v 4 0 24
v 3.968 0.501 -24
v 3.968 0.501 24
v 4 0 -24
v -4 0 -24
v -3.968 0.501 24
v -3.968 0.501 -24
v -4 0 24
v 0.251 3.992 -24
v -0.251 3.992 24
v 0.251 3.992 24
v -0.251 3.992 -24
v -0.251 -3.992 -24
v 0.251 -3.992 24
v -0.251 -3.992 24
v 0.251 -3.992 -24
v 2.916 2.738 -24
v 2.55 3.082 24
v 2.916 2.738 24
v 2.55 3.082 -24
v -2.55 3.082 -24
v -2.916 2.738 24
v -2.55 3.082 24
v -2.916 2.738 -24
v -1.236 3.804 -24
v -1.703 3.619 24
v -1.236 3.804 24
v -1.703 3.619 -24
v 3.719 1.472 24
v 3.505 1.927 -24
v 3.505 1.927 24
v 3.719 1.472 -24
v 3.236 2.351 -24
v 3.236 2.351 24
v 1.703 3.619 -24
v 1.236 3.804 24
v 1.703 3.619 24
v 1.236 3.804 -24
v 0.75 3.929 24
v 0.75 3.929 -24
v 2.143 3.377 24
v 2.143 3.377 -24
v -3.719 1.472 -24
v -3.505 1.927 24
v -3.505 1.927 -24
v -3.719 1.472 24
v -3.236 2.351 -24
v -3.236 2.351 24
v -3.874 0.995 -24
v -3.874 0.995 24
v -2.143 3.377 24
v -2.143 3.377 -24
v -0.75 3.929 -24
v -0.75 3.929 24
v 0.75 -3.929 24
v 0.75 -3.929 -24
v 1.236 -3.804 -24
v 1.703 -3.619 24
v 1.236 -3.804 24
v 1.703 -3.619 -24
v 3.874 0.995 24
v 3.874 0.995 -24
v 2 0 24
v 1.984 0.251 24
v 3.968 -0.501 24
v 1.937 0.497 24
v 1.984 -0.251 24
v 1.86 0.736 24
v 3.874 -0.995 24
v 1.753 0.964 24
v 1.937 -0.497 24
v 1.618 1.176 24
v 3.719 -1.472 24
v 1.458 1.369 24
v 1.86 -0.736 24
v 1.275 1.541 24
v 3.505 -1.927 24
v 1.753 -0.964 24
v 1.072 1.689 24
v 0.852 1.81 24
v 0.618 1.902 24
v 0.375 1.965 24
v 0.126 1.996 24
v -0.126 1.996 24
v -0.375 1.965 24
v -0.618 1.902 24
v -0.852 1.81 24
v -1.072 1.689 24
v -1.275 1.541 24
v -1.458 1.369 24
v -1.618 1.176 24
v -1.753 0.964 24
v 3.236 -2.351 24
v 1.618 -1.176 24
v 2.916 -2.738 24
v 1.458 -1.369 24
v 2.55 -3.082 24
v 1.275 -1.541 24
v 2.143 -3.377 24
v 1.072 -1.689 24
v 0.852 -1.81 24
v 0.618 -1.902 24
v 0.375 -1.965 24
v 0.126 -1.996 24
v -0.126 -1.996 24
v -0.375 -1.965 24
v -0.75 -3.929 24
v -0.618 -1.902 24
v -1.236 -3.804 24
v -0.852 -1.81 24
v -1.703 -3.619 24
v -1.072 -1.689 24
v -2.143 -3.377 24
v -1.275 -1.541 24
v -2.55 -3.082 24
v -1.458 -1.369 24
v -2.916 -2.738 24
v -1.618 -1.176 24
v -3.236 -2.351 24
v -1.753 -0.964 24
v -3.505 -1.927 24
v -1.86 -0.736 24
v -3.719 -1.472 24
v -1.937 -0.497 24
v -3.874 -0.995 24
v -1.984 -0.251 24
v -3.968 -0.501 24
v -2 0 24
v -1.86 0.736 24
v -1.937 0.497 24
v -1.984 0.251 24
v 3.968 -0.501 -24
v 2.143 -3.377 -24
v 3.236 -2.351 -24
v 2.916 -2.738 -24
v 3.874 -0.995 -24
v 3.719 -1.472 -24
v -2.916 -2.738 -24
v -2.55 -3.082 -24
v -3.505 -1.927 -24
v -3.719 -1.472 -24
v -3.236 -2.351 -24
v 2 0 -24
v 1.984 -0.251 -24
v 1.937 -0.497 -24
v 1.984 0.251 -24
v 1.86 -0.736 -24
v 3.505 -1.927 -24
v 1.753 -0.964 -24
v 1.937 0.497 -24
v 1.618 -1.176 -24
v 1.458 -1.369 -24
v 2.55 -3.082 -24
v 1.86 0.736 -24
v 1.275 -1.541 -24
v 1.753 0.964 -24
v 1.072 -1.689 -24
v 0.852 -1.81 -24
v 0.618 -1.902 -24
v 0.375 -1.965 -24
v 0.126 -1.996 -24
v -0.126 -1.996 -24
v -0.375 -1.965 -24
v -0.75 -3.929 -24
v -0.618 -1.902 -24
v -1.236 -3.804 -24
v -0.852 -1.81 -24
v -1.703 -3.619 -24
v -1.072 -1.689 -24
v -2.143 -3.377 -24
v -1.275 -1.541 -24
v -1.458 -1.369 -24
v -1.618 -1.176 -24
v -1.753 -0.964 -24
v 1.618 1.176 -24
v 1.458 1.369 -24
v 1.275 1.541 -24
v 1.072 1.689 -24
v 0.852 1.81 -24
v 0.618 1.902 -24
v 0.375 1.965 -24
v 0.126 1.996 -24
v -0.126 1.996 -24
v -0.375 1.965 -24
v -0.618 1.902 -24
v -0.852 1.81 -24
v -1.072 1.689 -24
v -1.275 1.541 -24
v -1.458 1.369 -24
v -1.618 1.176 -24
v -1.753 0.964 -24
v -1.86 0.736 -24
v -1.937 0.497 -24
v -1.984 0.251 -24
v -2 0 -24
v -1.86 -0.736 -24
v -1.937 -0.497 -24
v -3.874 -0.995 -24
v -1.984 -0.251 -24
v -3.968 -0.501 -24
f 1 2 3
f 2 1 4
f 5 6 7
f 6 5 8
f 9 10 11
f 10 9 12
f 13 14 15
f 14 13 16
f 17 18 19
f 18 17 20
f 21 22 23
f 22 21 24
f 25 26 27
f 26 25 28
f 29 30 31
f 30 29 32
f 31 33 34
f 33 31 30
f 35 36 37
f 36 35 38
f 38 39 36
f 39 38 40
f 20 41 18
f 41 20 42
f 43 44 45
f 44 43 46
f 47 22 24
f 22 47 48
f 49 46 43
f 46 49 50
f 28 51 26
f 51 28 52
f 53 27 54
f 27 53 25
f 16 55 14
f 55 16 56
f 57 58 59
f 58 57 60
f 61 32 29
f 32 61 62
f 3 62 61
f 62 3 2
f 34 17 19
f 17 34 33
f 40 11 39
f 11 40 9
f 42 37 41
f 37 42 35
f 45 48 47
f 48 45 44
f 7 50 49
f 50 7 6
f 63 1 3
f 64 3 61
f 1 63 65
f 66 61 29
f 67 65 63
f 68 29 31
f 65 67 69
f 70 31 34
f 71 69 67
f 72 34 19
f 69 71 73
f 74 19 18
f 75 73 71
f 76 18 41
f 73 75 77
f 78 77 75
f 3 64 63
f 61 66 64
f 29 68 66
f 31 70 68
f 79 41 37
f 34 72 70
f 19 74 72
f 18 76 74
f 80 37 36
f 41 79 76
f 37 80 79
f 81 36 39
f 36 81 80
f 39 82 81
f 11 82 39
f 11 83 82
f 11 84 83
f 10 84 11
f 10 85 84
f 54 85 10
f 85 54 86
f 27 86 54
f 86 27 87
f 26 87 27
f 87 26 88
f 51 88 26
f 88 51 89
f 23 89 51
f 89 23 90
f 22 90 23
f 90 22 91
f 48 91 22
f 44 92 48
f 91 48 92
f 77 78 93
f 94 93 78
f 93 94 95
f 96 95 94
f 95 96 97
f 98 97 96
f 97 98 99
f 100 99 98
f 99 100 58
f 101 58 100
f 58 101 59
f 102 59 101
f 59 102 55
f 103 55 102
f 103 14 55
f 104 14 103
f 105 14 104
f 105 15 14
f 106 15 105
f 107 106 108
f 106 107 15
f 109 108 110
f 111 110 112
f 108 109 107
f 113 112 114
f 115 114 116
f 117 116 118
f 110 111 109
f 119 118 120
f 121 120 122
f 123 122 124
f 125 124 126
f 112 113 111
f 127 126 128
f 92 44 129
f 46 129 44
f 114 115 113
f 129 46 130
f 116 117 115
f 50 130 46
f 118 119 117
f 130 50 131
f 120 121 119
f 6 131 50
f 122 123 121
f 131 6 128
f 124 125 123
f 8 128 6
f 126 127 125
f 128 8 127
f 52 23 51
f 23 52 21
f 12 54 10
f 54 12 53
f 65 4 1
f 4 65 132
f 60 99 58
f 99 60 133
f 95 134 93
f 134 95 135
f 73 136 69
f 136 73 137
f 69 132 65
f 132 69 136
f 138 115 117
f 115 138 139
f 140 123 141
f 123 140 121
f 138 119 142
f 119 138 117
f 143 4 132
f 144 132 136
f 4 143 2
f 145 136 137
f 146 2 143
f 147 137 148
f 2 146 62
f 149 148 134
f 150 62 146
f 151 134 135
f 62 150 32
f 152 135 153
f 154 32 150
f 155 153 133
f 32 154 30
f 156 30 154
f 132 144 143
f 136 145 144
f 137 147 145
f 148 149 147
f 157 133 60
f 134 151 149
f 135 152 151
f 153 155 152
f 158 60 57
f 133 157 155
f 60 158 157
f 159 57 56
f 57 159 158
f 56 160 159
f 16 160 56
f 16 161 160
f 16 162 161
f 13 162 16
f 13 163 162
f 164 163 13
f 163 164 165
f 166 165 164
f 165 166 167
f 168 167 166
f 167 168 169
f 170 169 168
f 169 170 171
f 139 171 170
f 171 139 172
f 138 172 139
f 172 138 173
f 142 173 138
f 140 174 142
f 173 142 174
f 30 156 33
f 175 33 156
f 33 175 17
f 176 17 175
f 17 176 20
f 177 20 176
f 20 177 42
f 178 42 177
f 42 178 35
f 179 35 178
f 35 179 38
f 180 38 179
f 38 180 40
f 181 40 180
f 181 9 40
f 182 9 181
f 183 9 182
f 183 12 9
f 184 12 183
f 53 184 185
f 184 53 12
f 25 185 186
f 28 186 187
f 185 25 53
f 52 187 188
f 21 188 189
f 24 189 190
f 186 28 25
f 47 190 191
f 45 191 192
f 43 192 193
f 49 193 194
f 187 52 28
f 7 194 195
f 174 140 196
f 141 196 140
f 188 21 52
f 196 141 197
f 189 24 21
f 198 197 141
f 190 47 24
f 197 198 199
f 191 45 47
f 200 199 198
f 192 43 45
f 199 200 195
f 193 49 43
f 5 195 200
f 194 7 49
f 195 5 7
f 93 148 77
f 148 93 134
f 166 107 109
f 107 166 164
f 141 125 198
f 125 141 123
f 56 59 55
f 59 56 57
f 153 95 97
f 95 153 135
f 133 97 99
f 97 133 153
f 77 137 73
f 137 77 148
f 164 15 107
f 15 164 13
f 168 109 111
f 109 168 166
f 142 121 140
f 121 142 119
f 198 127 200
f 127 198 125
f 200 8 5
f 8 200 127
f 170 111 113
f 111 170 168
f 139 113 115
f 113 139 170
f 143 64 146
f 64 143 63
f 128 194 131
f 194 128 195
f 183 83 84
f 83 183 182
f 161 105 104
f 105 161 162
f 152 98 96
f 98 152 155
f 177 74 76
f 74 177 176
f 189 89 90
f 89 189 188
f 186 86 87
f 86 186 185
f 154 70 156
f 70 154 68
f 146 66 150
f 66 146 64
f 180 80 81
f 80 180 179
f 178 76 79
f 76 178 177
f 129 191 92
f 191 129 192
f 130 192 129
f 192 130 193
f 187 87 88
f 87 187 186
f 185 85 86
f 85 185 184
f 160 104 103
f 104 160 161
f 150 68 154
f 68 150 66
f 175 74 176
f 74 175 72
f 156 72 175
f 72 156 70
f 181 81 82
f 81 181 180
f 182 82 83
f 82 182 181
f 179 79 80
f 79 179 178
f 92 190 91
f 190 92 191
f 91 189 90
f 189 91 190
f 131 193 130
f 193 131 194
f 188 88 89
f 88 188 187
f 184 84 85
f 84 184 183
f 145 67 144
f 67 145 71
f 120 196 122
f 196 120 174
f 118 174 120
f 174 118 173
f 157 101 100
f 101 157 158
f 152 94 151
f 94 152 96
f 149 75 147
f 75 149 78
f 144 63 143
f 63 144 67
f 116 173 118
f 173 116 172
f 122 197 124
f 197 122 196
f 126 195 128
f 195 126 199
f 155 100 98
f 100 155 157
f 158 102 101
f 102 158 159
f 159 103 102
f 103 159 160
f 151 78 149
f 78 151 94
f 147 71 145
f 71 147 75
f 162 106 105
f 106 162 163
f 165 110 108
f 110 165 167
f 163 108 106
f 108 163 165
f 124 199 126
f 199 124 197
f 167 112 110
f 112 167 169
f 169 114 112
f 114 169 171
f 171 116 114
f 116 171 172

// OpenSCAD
$fn = 50;


difference() {
	union() {
		translate(v = [0, 0, -24.0000000000]) {
			cylinder(h = 48, r = 4.0000000000);
		}
	}
	union() {
		translate(v = [0, 0, -100.0000000000]) {
			cylinder(h = 200, r = 2);
		}
	}
}
